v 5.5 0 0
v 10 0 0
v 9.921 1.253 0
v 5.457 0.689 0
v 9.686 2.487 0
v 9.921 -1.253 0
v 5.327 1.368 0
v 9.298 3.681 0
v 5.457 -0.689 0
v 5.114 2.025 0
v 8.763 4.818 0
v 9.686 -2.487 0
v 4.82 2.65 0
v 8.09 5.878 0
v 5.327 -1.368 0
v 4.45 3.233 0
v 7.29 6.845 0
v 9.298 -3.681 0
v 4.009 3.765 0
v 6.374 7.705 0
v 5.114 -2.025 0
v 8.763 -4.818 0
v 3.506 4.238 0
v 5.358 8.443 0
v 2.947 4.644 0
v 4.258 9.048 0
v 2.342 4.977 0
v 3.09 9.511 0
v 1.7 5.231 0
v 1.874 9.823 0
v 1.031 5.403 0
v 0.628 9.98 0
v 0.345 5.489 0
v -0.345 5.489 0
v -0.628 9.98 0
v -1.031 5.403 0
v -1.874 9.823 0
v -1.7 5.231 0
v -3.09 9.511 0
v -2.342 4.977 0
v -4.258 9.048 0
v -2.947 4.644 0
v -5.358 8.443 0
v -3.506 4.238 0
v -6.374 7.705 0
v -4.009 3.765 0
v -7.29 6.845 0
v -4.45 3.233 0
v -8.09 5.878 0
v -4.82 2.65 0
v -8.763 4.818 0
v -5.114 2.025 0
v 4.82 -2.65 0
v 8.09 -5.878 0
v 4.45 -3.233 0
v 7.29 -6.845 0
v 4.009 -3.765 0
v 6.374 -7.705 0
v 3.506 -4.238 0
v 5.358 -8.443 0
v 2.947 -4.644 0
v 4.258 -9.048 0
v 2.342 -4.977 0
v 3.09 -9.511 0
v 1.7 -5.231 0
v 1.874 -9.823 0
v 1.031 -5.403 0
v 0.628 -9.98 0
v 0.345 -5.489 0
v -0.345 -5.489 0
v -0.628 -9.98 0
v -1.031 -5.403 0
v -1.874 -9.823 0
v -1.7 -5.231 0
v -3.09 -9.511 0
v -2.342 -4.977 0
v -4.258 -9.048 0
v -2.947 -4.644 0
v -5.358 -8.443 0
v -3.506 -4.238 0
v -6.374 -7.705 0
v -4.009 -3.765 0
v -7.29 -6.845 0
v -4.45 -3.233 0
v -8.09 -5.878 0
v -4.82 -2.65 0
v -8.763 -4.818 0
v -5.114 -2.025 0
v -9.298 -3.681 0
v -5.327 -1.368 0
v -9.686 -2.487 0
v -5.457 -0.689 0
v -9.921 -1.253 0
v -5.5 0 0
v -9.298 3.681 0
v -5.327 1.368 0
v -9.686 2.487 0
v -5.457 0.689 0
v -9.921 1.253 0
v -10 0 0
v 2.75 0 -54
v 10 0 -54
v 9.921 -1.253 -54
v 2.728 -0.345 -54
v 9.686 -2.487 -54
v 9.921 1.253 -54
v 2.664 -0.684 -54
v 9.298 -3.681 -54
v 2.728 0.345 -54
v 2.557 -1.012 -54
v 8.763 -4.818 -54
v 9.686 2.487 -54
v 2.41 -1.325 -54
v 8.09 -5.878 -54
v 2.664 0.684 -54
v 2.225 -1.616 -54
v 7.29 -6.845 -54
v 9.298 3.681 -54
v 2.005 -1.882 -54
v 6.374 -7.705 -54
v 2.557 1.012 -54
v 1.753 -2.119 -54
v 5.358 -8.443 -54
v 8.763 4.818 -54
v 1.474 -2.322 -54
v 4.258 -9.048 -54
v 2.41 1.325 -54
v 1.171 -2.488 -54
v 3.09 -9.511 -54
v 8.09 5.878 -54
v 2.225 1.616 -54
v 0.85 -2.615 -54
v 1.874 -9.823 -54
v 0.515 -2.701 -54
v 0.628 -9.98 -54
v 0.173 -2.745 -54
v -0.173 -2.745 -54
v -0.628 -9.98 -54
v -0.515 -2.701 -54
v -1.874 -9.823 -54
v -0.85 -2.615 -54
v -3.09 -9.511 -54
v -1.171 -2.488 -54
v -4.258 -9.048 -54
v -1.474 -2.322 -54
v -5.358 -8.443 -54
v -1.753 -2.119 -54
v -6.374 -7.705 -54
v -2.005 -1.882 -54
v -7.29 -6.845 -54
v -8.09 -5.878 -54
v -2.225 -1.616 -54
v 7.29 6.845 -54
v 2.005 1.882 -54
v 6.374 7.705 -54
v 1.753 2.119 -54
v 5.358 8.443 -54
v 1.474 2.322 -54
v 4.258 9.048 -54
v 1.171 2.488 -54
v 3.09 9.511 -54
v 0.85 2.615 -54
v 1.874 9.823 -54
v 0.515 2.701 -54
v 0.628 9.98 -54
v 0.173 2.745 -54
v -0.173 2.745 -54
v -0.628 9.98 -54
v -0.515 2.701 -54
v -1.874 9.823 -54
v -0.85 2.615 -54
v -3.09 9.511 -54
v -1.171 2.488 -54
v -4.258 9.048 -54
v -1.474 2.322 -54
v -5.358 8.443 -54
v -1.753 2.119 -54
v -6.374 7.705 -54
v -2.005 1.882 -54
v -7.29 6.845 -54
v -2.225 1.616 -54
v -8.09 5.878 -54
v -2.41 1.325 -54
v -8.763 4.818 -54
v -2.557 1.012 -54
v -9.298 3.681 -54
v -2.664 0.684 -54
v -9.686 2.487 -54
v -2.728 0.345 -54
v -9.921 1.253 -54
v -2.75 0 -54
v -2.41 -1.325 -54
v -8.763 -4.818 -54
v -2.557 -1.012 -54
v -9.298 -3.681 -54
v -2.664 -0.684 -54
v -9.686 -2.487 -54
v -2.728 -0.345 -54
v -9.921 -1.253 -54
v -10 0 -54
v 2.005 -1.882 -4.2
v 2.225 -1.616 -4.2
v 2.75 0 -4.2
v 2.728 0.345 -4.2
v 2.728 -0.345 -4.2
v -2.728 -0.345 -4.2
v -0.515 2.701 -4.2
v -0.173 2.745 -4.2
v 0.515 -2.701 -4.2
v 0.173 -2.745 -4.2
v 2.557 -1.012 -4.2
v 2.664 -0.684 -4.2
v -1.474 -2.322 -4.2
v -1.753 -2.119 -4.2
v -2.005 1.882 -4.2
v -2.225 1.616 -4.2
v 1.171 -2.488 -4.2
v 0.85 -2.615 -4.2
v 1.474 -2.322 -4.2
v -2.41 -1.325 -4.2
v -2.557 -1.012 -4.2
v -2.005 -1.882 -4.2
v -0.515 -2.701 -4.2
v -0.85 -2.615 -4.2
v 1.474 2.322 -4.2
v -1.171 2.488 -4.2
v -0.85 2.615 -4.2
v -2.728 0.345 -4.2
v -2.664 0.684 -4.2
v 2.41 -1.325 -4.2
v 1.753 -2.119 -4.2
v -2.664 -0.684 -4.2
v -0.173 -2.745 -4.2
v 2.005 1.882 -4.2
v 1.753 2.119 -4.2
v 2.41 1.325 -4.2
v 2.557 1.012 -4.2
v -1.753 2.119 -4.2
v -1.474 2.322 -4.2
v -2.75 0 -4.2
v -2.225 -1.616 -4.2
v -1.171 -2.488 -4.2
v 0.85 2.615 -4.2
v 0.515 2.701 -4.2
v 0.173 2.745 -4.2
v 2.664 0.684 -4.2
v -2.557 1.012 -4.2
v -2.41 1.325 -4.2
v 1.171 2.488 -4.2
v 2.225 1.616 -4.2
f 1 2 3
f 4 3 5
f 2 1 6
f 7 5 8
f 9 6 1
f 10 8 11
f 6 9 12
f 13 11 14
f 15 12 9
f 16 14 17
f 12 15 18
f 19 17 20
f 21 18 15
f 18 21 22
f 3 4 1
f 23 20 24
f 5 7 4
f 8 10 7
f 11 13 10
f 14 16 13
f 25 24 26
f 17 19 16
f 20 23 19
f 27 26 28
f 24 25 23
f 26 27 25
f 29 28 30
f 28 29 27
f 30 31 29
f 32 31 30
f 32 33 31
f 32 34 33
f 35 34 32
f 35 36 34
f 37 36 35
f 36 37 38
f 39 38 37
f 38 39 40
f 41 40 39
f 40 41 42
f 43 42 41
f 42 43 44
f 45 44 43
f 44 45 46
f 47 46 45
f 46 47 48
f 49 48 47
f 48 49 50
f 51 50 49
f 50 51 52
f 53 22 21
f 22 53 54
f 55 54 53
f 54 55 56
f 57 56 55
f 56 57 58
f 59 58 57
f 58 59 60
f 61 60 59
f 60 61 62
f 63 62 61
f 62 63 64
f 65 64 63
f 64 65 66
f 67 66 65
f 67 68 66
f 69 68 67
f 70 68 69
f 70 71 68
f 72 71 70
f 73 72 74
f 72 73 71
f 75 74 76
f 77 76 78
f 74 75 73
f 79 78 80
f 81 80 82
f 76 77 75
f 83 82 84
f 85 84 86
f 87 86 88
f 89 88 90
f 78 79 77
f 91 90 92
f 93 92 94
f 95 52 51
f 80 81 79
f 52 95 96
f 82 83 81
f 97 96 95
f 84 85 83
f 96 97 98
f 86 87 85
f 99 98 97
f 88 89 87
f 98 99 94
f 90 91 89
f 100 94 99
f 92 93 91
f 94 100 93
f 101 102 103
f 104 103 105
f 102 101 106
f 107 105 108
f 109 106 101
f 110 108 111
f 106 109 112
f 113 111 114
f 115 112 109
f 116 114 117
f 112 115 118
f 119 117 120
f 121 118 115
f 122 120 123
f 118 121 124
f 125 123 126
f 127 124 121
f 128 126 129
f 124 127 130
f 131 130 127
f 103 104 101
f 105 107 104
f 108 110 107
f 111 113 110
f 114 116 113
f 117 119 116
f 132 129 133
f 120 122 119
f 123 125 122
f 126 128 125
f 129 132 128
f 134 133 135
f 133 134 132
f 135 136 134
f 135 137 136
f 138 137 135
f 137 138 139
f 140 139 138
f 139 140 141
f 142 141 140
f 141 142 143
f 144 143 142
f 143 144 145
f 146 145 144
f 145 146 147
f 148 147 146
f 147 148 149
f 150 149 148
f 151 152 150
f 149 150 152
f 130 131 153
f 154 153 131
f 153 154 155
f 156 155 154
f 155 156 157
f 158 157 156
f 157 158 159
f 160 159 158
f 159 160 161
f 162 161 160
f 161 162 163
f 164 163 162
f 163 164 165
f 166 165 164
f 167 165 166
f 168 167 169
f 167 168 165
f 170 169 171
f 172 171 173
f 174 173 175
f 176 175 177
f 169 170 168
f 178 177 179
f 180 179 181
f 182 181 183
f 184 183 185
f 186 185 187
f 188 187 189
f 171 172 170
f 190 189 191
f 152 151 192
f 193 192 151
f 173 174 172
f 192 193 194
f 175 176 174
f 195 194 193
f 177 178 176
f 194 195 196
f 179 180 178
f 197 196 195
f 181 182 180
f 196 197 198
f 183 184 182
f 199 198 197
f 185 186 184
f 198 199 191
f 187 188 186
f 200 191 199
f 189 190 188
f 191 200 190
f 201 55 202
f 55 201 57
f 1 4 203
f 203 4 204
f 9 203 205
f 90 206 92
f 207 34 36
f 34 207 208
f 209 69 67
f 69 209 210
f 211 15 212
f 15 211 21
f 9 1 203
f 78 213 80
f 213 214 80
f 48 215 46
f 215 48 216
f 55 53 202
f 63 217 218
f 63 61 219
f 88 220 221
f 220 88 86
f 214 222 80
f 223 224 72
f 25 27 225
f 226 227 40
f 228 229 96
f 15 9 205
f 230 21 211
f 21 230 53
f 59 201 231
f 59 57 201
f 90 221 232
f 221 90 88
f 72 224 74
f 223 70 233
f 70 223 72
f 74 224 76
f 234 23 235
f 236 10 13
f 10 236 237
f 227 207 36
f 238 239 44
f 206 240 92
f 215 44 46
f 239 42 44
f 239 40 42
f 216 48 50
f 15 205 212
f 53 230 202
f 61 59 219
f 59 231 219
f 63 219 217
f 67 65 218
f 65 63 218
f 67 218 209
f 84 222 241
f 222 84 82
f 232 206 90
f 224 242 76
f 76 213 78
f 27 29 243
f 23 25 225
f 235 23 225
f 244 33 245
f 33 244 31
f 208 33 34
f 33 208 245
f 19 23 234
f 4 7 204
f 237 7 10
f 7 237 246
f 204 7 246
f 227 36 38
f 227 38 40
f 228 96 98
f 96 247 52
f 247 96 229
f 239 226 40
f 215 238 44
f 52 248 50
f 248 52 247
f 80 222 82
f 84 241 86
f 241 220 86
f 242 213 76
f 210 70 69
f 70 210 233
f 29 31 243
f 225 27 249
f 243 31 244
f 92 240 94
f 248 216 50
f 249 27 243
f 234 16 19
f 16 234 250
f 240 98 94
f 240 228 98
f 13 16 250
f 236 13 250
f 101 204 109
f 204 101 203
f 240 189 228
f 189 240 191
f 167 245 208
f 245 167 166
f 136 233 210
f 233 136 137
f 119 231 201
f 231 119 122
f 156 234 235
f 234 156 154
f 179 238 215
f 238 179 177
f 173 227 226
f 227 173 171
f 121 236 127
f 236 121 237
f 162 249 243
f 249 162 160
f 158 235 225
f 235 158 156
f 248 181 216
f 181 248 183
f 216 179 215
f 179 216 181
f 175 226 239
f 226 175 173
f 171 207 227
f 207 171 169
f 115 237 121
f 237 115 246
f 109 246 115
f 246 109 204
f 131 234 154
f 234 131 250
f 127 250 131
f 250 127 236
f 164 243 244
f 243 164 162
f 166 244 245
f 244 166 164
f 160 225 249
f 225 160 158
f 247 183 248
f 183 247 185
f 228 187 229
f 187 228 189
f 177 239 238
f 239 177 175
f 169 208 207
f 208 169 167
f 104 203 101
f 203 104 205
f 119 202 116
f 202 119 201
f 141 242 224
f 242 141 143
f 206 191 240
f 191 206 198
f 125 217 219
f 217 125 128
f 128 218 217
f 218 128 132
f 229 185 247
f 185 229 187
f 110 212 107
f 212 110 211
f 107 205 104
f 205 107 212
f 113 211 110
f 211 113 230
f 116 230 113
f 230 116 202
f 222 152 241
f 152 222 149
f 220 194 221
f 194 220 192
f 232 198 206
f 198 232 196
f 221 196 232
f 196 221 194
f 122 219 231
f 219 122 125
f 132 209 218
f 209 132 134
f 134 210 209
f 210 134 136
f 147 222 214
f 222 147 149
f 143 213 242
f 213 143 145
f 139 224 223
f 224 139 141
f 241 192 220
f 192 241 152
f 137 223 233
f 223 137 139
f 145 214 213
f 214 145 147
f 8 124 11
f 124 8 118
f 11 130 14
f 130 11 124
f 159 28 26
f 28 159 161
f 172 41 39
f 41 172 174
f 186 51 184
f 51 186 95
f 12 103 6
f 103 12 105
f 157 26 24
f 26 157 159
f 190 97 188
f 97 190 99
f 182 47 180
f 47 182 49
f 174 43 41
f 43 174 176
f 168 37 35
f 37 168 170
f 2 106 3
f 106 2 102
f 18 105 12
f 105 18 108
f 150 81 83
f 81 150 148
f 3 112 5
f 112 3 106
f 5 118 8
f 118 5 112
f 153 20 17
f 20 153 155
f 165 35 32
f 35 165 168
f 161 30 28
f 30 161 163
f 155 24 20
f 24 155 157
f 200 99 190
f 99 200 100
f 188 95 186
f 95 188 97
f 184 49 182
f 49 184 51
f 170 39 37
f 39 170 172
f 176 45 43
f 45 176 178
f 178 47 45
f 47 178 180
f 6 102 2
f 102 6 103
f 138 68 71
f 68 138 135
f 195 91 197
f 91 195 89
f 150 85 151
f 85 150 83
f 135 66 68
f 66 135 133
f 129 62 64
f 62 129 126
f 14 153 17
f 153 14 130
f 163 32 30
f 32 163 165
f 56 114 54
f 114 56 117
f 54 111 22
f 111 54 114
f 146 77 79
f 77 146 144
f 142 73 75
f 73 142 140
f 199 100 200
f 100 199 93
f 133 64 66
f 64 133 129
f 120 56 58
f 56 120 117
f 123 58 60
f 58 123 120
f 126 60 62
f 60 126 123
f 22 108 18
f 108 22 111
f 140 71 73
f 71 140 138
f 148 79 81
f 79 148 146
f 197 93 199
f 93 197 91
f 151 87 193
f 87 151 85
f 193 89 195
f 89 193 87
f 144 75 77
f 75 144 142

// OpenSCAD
$fn = 50;


difference() {
	union() {
		translate(v = [0, 0, -54.0000000000]) {
			cylinder(h = 54, r = 10.0000000000);
		}
		cylinder(h = 0, r = 13.0000000000);
	}
	union() {
		translate(v = [0, 0, 0]) {
			rotate(a = [0, 0, 0]) {
				difference() {
					union() {
						#translate(v = [0, 0, -54.0000000000]) {
							cylinder(h = 54, r = 2.2500000000);
						}
						#translate(v = [0, 0, -4.2000000000]) {
							cylinder(h = 4.2000000000, r = 10.0000000000, r1 = 2.7500000000, r2 = 5.5000000000);
						}
						#translate(v = [0, 0, -54.0000000000]) {
							cylinder(h = 54, r = 2.7500000000);
						}
						#translate(v = [0, 0, -54.0000000000]) {
							cylinder(h = 54, r = 2.2500000000);
						}
					}
					union();
				}
			}
		}
	}
}
